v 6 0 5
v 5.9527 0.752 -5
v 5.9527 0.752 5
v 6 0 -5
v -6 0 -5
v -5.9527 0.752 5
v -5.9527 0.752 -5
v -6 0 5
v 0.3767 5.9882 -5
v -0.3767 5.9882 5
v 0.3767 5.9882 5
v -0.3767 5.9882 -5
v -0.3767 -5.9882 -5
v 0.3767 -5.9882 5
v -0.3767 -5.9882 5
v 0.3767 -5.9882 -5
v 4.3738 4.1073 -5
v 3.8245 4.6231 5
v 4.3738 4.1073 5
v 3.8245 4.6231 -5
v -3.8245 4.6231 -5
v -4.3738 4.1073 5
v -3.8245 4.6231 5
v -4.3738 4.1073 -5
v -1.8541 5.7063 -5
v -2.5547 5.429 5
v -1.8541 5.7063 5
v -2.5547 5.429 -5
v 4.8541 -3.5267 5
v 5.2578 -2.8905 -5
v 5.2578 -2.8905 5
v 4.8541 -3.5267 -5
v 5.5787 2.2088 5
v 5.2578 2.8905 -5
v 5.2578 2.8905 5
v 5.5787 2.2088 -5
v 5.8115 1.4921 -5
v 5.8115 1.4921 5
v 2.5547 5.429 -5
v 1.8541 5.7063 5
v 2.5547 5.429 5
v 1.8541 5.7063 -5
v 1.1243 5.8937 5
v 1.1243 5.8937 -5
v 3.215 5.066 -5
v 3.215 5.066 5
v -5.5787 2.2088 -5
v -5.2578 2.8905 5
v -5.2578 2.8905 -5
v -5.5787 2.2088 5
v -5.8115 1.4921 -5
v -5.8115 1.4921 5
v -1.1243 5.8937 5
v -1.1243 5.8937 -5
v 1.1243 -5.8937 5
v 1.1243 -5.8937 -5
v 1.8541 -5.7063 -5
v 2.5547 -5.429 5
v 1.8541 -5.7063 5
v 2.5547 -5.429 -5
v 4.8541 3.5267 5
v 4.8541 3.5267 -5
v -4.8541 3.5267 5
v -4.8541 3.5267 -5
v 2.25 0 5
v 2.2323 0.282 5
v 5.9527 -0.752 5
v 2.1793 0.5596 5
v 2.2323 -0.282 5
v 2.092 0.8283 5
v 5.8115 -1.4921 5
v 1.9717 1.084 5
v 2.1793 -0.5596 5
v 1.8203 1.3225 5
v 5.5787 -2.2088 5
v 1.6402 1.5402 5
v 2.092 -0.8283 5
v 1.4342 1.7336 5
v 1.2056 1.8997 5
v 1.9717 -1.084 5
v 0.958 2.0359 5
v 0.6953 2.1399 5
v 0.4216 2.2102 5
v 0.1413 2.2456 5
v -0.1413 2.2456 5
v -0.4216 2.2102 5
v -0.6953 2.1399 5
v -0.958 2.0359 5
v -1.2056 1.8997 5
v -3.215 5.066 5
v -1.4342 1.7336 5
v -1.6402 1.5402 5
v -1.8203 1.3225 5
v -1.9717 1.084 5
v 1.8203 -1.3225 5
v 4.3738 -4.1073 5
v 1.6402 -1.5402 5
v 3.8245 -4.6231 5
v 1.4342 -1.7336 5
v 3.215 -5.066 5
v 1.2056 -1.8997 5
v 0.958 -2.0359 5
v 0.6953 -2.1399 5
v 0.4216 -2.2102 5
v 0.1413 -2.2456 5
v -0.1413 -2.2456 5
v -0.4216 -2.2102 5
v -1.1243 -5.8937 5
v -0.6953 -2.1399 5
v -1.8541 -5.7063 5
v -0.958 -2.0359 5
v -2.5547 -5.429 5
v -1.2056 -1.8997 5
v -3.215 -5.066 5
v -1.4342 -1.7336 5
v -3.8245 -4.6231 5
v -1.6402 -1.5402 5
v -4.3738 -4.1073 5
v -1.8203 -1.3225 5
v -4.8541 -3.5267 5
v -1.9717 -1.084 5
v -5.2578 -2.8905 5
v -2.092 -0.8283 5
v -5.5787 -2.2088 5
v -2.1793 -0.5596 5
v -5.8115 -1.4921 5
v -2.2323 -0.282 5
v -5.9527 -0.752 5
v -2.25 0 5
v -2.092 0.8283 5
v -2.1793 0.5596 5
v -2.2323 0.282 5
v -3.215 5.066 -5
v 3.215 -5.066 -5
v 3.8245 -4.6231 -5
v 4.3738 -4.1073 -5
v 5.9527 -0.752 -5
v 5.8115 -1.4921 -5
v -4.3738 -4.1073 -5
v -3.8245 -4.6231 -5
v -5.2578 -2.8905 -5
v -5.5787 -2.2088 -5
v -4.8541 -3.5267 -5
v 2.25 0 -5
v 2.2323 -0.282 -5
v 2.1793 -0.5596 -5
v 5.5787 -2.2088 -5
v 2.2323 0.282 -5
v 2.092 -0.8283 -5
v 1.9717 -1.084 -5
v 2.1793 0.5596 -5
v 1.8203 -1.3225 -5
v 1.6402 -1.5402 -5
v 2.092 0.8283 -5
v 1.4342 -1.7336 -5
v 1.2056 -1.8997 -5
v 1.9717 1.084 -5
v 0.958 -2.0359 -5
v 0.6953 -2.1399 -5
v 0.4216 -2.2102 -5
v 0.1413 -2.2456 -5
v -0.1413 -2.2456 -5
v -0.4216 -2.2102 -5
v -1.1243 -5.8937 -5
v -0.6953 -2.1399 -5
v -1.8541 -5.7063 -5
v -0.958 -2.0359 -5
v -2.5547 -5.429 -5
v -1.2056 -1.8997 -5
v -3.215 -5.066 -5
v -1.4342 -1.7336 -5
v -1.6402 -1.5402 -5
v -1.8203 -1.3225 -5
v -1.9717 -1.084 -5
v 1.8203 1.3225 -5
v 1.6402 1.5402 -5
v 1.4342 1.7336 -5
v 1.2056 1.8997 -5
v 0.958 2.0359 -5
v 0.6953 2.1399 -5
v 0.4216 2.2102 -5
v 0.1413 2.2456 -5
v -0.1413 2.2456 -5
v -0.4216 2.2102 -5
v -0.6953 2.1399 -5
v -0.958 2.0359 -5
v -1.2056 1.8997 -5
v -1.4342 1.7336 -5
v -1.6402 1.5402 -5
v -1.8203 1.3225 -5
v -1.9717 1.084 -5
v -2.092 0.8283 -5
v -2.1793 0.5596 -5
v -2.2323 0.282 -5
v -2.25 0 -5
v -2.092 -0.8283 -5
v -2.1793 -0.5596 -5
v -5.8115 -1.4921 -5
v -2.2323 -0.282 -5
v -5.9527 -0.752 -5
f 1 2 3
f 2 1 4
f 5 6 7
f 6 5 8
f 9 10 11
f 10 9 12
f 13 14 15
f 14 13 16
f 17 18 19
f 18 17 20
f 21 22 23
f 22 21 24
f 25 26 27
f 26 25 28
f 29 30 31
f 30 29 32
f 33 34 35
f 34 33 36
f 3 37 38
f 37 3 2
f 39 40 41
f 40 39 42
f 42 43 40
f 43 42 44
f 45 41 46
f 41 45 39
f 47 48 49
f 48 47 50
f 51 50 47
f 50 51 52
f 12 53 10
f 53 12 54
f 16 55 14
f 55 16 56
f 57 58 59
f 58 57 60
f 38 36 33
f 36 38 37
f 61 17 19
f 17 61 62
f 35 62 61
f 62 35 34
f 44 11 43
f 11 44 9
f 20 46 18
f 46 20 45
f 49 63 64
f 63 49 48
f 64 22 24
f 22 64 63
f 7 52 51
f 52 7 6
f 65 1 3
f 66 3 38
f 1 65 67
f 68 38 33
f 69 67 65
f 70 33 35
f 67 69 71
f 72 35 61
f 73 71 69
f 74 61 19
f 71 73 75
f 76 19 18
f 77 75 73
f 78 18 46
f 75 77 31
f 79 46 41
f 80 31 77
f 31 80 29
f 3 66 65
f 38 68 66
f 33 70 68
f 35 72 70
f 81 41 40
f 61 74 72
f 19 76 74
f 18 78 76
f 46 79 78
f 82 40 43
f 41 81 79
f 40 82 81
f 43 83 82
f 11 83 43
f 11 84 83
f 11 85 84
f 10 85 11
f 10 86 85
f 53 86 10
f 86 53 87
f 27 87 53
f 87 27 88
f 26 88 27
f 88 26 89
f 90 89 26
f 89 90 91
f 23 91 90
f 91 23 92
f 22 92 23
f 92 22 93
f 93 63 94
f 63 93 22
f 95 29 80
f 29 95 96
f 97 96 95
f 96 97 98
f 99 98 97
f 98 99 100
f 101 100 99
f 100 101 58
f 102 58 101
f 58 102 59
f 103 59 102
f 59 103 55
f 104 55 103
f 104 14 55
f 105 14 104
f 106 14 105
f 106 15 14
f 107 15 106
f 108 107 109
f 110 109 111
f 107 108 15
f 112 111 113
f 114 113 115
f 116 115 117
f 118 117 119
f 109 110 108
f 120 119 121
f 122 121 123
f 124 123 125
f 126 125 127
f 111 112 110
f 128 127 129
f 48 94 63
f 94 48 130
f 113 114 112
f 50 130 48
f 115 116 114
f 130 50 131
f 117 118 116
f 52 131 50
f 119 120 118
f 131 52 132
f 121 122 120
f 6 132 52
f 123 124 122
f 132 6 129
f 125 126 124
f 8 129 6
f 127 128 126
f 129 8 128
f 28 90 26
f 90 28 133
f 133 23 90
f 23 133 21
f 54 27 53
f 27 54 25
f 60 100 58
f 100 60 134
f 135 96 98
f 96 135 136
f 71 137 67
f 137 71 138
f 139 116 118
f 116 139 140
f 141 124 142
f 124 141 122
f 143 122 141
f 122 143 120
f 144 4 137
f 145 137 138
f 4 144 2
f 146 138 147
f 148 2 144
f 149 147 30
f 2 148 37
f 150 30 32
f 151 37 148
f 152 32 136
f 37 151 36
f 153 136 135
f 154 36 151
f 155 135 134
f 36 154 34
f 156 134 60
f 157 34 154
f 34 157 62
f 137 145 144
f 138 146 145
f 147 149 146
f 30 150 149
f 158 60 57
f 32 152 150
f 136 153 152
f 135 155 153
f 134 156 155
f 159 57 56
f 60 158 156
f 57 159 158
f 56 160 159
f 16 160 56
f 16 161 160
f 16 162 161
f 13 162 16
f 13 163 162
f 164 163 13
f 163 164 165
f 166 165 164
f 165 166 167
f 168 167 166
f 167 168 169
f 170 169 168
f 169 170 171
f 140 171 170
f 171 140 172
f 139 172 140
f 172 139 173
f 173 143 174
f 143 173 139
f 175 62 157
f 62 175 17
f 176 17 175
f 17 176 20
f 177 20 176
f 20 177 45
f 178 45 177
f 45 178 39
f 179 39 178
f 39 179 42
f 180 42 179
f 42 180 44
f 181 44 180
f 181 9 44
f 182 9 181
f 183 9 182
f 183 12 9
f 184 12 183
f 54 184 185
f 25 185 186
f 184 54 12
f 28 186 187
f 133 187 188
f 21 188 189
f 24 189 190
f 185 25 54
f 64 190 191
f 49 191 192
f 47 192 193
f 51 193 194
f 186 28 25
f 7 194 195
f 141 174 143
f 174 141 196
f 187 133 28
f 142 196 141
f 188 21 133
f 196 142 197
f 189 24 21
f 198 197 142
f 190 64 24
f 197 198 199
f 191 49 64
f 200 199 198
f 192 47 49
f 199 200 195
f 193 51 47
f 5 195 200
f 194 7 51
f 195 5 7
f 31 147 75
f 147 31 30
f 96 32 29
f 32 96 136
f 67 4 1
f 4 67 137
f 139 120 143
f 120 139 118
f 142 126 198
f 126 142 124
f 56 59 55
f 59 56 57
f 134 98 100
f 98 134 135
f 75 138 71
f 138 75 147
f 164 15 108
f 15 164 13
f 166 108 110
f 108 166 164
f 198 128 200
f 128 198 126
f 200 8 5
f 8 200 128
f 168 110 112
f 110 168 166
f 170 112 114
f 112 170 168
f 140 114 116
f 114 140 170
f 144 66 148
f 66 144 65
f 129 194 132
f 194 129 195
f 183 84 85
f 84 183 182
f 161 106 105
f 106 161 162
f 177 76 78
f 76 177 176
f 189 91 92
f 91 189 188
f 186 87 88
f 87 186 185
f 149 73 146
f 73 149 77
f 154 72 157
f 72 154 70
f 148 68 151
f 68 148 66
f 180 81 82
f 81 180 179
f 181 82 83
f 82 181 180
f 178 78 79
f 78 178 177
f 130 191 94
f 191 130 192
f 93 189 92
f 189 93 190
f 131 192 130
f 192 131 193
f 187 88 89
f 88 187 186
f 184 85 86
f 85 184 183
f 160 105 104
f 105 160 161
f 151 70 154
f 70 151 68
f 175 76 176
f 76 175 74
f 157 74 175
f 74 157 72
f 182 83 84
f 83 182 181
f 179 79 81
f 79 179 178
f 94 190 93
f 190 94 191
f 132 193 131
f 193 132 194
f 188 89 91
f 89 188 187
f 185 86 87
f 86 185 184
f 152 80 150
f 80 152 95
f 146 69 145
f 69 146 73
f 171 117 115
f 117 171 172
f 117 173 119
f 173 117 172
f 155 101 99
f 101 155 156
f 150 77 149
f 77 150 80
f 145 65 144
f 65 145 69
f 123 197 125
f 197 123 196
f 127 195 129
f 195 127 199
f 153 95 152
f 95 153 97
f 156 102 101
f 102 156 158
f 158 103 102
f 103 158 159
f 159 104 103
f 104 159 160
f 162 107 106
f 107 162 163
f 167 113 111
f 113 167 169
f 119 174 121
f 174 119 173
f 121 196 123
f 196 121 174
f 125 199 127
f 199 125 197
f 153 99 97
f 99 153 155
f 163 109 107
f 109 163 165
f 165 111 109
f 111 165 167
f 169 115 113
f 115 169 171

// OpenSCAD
$fn = 50;


difference() {
	union() {
		translate(v = [0, 0, -5.0000000000]) {
			cylinder(h = 10, r = 6.0000000000);
		}
	}
	union() {
		translate(v = [0, 0, -100.0000000000]) {
			cylinder(h = 200, r = 2.2500000000);
		}
	}
}
